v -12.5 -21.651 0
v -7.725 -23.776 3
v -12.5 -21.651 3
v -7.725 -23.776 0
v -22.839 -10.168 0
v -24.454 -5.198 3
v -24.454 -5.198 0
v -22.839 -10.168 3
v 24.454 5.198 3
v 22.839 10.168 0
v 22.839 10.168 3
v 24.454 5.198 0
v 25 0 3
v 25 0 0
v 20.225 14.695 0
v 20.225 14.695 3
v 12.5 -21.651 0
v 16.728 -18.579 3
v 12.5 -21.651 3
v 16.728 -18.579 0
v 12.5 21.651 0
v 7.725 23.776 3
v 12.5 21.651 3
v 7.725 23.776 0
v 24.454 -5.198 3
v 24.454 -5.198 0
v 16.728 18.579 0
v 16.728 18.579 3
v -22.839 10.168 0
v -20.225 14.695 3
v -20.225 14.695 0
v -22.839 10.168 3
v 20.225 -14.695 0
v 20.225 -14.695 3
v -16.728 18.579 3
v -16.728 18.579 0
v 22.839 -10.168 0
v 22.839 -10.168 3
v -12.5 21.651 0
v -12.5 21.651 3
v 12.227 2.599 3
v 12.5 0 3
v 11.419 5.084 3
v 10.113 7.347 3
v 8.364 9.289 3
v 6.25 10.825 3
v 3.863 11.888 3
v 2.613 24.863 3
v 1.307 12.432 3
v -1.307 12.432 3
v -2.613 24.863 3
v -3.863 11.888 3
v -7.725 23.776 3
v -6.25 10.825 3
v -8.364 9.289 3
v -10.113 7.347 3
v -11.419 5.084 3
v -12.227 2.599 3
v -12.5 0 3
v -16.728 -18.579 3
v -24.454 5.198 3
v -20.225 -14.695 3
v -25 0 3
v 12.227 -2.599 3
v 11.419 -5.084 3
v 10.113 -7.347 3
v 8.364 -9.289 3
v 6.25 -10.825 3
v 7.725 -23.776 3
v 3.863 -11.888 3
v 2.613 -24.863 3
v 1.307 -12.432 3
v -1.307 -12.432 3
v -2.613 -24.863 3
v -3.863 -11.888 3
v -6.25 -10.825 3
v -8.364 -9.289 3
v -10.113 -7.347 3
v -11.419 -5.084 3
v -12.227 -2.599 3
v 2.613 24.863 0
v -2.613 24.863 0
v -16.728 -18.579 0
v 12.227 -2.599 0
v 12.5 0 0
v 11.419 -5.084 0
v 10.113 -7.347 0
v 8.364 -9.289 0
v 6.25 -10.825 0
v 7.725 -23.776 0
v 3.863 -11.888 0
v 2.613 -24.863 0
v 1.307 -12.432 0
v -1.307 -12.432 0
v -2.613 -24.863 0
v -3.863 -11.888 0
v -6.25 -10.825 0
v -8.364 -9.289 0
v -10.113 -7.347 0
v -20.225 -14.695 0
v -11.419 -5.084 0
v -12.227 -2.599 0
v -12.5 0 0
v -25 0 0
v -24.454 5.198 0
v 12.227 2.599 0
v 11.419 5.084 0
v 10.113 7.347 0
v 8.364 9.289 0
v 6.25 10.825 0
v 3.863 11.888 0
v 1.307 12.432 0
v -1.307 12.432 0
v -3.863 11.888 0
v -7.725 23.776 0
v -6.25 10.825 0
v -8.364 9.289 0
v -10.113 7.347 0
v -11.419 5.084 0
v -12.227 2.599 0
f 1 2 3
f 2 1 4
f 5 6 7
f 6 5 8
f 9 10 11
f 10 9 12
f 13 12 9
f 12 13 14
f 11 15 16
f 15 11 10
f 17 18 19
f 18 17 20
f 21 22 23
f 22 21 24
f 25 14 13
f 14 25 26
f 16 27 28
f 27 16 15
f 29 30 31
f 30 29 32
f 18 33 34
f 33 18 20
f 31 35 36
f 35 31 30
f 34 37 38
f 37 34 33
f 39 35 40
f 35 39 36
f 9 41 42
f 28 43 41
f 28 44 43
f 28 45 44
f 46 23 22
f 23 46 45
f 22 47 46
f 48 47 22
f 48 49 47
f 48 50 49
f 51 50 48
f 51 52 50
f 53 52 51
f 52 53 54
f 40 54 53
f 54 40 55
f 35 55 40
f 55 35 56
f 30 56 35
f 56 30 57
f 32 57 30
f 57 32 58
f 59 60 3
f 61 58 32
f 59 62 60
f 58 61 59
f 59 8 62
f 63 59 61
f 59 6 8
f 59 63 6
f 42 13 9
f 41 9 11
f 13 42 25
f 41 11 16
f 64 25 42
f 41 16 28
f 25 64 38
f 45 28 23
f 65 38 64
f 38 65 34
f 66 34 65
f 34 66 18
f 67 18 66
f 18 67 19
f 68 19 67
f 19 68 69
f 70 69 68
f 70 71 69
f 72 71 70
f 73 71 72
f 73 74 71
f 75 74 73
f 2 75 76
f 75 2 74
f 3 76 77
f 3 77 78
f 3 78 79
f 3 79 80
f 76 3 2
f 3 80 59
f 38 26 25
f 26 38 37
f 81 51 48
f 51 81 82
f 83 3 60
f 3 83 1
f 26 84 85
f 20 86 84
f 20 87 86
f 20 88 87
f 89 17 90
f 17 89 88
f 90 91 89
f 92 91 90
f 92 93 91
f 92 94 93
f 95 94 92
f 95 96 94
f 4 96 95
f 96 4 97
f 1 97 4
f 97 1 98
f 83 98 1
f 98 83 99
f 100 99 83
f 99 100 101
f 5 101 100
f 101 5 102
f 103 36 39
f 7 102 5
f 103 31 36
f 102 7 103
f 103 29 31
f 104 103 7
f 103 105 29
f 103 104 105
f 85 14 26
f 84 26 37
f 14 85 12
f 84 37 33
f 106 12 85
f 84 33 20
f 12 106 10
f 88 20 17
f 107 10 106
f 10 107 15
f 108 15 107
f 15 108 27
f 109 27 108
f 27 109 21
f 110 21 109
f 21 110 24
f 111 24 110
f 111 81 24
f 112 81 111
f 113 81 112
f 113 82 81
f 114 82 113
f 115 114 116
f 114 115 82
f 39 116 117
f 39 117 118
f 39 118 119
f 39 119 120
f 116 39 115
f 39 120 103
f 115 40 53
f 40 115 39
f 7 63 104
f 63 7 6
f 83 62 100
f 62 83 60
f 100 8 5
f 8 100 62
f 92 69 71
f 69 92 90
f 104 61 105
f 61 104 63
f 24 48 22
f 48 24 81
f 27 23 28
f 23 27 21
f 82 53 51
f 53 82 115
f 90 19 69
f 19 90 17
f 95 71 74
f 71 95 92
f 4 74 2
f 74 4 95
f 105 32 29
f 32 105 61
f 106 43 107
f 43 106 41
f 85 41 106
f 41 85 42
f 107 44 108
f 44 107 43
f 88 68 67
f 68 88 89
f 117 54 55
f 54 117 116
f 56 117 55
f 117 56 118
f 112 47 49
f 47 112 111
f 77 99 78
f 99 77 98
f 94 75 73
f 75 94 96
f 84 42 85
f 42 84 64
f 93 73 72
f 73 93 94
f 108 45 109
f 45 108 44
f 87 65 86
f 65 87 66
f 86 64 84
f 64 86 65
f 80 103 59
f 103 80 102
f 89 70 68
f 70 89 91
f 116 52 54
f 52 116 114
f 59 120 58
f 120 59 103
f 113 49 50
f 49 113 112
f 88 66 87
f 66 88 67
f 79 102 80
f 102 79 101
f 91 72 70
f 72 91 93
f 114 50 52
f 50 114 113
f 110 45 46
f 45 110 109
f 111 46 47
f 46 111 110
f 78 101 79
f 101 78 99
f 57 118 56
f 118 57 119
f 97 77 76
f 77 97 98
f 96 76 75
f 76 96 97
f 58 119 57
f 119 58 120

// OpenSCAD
module washer(outer_diameter, inner_diameter, thickness) {
  difference() {
    cylinder(h = thickness, r = outer_diameter / 2, center = false);
    cylinder(h = thickness, r = inner_diameter / 2, center = false);
  }
}

washer(outer_diameter = 50, inner_diameter = 25, thickness = 3);
